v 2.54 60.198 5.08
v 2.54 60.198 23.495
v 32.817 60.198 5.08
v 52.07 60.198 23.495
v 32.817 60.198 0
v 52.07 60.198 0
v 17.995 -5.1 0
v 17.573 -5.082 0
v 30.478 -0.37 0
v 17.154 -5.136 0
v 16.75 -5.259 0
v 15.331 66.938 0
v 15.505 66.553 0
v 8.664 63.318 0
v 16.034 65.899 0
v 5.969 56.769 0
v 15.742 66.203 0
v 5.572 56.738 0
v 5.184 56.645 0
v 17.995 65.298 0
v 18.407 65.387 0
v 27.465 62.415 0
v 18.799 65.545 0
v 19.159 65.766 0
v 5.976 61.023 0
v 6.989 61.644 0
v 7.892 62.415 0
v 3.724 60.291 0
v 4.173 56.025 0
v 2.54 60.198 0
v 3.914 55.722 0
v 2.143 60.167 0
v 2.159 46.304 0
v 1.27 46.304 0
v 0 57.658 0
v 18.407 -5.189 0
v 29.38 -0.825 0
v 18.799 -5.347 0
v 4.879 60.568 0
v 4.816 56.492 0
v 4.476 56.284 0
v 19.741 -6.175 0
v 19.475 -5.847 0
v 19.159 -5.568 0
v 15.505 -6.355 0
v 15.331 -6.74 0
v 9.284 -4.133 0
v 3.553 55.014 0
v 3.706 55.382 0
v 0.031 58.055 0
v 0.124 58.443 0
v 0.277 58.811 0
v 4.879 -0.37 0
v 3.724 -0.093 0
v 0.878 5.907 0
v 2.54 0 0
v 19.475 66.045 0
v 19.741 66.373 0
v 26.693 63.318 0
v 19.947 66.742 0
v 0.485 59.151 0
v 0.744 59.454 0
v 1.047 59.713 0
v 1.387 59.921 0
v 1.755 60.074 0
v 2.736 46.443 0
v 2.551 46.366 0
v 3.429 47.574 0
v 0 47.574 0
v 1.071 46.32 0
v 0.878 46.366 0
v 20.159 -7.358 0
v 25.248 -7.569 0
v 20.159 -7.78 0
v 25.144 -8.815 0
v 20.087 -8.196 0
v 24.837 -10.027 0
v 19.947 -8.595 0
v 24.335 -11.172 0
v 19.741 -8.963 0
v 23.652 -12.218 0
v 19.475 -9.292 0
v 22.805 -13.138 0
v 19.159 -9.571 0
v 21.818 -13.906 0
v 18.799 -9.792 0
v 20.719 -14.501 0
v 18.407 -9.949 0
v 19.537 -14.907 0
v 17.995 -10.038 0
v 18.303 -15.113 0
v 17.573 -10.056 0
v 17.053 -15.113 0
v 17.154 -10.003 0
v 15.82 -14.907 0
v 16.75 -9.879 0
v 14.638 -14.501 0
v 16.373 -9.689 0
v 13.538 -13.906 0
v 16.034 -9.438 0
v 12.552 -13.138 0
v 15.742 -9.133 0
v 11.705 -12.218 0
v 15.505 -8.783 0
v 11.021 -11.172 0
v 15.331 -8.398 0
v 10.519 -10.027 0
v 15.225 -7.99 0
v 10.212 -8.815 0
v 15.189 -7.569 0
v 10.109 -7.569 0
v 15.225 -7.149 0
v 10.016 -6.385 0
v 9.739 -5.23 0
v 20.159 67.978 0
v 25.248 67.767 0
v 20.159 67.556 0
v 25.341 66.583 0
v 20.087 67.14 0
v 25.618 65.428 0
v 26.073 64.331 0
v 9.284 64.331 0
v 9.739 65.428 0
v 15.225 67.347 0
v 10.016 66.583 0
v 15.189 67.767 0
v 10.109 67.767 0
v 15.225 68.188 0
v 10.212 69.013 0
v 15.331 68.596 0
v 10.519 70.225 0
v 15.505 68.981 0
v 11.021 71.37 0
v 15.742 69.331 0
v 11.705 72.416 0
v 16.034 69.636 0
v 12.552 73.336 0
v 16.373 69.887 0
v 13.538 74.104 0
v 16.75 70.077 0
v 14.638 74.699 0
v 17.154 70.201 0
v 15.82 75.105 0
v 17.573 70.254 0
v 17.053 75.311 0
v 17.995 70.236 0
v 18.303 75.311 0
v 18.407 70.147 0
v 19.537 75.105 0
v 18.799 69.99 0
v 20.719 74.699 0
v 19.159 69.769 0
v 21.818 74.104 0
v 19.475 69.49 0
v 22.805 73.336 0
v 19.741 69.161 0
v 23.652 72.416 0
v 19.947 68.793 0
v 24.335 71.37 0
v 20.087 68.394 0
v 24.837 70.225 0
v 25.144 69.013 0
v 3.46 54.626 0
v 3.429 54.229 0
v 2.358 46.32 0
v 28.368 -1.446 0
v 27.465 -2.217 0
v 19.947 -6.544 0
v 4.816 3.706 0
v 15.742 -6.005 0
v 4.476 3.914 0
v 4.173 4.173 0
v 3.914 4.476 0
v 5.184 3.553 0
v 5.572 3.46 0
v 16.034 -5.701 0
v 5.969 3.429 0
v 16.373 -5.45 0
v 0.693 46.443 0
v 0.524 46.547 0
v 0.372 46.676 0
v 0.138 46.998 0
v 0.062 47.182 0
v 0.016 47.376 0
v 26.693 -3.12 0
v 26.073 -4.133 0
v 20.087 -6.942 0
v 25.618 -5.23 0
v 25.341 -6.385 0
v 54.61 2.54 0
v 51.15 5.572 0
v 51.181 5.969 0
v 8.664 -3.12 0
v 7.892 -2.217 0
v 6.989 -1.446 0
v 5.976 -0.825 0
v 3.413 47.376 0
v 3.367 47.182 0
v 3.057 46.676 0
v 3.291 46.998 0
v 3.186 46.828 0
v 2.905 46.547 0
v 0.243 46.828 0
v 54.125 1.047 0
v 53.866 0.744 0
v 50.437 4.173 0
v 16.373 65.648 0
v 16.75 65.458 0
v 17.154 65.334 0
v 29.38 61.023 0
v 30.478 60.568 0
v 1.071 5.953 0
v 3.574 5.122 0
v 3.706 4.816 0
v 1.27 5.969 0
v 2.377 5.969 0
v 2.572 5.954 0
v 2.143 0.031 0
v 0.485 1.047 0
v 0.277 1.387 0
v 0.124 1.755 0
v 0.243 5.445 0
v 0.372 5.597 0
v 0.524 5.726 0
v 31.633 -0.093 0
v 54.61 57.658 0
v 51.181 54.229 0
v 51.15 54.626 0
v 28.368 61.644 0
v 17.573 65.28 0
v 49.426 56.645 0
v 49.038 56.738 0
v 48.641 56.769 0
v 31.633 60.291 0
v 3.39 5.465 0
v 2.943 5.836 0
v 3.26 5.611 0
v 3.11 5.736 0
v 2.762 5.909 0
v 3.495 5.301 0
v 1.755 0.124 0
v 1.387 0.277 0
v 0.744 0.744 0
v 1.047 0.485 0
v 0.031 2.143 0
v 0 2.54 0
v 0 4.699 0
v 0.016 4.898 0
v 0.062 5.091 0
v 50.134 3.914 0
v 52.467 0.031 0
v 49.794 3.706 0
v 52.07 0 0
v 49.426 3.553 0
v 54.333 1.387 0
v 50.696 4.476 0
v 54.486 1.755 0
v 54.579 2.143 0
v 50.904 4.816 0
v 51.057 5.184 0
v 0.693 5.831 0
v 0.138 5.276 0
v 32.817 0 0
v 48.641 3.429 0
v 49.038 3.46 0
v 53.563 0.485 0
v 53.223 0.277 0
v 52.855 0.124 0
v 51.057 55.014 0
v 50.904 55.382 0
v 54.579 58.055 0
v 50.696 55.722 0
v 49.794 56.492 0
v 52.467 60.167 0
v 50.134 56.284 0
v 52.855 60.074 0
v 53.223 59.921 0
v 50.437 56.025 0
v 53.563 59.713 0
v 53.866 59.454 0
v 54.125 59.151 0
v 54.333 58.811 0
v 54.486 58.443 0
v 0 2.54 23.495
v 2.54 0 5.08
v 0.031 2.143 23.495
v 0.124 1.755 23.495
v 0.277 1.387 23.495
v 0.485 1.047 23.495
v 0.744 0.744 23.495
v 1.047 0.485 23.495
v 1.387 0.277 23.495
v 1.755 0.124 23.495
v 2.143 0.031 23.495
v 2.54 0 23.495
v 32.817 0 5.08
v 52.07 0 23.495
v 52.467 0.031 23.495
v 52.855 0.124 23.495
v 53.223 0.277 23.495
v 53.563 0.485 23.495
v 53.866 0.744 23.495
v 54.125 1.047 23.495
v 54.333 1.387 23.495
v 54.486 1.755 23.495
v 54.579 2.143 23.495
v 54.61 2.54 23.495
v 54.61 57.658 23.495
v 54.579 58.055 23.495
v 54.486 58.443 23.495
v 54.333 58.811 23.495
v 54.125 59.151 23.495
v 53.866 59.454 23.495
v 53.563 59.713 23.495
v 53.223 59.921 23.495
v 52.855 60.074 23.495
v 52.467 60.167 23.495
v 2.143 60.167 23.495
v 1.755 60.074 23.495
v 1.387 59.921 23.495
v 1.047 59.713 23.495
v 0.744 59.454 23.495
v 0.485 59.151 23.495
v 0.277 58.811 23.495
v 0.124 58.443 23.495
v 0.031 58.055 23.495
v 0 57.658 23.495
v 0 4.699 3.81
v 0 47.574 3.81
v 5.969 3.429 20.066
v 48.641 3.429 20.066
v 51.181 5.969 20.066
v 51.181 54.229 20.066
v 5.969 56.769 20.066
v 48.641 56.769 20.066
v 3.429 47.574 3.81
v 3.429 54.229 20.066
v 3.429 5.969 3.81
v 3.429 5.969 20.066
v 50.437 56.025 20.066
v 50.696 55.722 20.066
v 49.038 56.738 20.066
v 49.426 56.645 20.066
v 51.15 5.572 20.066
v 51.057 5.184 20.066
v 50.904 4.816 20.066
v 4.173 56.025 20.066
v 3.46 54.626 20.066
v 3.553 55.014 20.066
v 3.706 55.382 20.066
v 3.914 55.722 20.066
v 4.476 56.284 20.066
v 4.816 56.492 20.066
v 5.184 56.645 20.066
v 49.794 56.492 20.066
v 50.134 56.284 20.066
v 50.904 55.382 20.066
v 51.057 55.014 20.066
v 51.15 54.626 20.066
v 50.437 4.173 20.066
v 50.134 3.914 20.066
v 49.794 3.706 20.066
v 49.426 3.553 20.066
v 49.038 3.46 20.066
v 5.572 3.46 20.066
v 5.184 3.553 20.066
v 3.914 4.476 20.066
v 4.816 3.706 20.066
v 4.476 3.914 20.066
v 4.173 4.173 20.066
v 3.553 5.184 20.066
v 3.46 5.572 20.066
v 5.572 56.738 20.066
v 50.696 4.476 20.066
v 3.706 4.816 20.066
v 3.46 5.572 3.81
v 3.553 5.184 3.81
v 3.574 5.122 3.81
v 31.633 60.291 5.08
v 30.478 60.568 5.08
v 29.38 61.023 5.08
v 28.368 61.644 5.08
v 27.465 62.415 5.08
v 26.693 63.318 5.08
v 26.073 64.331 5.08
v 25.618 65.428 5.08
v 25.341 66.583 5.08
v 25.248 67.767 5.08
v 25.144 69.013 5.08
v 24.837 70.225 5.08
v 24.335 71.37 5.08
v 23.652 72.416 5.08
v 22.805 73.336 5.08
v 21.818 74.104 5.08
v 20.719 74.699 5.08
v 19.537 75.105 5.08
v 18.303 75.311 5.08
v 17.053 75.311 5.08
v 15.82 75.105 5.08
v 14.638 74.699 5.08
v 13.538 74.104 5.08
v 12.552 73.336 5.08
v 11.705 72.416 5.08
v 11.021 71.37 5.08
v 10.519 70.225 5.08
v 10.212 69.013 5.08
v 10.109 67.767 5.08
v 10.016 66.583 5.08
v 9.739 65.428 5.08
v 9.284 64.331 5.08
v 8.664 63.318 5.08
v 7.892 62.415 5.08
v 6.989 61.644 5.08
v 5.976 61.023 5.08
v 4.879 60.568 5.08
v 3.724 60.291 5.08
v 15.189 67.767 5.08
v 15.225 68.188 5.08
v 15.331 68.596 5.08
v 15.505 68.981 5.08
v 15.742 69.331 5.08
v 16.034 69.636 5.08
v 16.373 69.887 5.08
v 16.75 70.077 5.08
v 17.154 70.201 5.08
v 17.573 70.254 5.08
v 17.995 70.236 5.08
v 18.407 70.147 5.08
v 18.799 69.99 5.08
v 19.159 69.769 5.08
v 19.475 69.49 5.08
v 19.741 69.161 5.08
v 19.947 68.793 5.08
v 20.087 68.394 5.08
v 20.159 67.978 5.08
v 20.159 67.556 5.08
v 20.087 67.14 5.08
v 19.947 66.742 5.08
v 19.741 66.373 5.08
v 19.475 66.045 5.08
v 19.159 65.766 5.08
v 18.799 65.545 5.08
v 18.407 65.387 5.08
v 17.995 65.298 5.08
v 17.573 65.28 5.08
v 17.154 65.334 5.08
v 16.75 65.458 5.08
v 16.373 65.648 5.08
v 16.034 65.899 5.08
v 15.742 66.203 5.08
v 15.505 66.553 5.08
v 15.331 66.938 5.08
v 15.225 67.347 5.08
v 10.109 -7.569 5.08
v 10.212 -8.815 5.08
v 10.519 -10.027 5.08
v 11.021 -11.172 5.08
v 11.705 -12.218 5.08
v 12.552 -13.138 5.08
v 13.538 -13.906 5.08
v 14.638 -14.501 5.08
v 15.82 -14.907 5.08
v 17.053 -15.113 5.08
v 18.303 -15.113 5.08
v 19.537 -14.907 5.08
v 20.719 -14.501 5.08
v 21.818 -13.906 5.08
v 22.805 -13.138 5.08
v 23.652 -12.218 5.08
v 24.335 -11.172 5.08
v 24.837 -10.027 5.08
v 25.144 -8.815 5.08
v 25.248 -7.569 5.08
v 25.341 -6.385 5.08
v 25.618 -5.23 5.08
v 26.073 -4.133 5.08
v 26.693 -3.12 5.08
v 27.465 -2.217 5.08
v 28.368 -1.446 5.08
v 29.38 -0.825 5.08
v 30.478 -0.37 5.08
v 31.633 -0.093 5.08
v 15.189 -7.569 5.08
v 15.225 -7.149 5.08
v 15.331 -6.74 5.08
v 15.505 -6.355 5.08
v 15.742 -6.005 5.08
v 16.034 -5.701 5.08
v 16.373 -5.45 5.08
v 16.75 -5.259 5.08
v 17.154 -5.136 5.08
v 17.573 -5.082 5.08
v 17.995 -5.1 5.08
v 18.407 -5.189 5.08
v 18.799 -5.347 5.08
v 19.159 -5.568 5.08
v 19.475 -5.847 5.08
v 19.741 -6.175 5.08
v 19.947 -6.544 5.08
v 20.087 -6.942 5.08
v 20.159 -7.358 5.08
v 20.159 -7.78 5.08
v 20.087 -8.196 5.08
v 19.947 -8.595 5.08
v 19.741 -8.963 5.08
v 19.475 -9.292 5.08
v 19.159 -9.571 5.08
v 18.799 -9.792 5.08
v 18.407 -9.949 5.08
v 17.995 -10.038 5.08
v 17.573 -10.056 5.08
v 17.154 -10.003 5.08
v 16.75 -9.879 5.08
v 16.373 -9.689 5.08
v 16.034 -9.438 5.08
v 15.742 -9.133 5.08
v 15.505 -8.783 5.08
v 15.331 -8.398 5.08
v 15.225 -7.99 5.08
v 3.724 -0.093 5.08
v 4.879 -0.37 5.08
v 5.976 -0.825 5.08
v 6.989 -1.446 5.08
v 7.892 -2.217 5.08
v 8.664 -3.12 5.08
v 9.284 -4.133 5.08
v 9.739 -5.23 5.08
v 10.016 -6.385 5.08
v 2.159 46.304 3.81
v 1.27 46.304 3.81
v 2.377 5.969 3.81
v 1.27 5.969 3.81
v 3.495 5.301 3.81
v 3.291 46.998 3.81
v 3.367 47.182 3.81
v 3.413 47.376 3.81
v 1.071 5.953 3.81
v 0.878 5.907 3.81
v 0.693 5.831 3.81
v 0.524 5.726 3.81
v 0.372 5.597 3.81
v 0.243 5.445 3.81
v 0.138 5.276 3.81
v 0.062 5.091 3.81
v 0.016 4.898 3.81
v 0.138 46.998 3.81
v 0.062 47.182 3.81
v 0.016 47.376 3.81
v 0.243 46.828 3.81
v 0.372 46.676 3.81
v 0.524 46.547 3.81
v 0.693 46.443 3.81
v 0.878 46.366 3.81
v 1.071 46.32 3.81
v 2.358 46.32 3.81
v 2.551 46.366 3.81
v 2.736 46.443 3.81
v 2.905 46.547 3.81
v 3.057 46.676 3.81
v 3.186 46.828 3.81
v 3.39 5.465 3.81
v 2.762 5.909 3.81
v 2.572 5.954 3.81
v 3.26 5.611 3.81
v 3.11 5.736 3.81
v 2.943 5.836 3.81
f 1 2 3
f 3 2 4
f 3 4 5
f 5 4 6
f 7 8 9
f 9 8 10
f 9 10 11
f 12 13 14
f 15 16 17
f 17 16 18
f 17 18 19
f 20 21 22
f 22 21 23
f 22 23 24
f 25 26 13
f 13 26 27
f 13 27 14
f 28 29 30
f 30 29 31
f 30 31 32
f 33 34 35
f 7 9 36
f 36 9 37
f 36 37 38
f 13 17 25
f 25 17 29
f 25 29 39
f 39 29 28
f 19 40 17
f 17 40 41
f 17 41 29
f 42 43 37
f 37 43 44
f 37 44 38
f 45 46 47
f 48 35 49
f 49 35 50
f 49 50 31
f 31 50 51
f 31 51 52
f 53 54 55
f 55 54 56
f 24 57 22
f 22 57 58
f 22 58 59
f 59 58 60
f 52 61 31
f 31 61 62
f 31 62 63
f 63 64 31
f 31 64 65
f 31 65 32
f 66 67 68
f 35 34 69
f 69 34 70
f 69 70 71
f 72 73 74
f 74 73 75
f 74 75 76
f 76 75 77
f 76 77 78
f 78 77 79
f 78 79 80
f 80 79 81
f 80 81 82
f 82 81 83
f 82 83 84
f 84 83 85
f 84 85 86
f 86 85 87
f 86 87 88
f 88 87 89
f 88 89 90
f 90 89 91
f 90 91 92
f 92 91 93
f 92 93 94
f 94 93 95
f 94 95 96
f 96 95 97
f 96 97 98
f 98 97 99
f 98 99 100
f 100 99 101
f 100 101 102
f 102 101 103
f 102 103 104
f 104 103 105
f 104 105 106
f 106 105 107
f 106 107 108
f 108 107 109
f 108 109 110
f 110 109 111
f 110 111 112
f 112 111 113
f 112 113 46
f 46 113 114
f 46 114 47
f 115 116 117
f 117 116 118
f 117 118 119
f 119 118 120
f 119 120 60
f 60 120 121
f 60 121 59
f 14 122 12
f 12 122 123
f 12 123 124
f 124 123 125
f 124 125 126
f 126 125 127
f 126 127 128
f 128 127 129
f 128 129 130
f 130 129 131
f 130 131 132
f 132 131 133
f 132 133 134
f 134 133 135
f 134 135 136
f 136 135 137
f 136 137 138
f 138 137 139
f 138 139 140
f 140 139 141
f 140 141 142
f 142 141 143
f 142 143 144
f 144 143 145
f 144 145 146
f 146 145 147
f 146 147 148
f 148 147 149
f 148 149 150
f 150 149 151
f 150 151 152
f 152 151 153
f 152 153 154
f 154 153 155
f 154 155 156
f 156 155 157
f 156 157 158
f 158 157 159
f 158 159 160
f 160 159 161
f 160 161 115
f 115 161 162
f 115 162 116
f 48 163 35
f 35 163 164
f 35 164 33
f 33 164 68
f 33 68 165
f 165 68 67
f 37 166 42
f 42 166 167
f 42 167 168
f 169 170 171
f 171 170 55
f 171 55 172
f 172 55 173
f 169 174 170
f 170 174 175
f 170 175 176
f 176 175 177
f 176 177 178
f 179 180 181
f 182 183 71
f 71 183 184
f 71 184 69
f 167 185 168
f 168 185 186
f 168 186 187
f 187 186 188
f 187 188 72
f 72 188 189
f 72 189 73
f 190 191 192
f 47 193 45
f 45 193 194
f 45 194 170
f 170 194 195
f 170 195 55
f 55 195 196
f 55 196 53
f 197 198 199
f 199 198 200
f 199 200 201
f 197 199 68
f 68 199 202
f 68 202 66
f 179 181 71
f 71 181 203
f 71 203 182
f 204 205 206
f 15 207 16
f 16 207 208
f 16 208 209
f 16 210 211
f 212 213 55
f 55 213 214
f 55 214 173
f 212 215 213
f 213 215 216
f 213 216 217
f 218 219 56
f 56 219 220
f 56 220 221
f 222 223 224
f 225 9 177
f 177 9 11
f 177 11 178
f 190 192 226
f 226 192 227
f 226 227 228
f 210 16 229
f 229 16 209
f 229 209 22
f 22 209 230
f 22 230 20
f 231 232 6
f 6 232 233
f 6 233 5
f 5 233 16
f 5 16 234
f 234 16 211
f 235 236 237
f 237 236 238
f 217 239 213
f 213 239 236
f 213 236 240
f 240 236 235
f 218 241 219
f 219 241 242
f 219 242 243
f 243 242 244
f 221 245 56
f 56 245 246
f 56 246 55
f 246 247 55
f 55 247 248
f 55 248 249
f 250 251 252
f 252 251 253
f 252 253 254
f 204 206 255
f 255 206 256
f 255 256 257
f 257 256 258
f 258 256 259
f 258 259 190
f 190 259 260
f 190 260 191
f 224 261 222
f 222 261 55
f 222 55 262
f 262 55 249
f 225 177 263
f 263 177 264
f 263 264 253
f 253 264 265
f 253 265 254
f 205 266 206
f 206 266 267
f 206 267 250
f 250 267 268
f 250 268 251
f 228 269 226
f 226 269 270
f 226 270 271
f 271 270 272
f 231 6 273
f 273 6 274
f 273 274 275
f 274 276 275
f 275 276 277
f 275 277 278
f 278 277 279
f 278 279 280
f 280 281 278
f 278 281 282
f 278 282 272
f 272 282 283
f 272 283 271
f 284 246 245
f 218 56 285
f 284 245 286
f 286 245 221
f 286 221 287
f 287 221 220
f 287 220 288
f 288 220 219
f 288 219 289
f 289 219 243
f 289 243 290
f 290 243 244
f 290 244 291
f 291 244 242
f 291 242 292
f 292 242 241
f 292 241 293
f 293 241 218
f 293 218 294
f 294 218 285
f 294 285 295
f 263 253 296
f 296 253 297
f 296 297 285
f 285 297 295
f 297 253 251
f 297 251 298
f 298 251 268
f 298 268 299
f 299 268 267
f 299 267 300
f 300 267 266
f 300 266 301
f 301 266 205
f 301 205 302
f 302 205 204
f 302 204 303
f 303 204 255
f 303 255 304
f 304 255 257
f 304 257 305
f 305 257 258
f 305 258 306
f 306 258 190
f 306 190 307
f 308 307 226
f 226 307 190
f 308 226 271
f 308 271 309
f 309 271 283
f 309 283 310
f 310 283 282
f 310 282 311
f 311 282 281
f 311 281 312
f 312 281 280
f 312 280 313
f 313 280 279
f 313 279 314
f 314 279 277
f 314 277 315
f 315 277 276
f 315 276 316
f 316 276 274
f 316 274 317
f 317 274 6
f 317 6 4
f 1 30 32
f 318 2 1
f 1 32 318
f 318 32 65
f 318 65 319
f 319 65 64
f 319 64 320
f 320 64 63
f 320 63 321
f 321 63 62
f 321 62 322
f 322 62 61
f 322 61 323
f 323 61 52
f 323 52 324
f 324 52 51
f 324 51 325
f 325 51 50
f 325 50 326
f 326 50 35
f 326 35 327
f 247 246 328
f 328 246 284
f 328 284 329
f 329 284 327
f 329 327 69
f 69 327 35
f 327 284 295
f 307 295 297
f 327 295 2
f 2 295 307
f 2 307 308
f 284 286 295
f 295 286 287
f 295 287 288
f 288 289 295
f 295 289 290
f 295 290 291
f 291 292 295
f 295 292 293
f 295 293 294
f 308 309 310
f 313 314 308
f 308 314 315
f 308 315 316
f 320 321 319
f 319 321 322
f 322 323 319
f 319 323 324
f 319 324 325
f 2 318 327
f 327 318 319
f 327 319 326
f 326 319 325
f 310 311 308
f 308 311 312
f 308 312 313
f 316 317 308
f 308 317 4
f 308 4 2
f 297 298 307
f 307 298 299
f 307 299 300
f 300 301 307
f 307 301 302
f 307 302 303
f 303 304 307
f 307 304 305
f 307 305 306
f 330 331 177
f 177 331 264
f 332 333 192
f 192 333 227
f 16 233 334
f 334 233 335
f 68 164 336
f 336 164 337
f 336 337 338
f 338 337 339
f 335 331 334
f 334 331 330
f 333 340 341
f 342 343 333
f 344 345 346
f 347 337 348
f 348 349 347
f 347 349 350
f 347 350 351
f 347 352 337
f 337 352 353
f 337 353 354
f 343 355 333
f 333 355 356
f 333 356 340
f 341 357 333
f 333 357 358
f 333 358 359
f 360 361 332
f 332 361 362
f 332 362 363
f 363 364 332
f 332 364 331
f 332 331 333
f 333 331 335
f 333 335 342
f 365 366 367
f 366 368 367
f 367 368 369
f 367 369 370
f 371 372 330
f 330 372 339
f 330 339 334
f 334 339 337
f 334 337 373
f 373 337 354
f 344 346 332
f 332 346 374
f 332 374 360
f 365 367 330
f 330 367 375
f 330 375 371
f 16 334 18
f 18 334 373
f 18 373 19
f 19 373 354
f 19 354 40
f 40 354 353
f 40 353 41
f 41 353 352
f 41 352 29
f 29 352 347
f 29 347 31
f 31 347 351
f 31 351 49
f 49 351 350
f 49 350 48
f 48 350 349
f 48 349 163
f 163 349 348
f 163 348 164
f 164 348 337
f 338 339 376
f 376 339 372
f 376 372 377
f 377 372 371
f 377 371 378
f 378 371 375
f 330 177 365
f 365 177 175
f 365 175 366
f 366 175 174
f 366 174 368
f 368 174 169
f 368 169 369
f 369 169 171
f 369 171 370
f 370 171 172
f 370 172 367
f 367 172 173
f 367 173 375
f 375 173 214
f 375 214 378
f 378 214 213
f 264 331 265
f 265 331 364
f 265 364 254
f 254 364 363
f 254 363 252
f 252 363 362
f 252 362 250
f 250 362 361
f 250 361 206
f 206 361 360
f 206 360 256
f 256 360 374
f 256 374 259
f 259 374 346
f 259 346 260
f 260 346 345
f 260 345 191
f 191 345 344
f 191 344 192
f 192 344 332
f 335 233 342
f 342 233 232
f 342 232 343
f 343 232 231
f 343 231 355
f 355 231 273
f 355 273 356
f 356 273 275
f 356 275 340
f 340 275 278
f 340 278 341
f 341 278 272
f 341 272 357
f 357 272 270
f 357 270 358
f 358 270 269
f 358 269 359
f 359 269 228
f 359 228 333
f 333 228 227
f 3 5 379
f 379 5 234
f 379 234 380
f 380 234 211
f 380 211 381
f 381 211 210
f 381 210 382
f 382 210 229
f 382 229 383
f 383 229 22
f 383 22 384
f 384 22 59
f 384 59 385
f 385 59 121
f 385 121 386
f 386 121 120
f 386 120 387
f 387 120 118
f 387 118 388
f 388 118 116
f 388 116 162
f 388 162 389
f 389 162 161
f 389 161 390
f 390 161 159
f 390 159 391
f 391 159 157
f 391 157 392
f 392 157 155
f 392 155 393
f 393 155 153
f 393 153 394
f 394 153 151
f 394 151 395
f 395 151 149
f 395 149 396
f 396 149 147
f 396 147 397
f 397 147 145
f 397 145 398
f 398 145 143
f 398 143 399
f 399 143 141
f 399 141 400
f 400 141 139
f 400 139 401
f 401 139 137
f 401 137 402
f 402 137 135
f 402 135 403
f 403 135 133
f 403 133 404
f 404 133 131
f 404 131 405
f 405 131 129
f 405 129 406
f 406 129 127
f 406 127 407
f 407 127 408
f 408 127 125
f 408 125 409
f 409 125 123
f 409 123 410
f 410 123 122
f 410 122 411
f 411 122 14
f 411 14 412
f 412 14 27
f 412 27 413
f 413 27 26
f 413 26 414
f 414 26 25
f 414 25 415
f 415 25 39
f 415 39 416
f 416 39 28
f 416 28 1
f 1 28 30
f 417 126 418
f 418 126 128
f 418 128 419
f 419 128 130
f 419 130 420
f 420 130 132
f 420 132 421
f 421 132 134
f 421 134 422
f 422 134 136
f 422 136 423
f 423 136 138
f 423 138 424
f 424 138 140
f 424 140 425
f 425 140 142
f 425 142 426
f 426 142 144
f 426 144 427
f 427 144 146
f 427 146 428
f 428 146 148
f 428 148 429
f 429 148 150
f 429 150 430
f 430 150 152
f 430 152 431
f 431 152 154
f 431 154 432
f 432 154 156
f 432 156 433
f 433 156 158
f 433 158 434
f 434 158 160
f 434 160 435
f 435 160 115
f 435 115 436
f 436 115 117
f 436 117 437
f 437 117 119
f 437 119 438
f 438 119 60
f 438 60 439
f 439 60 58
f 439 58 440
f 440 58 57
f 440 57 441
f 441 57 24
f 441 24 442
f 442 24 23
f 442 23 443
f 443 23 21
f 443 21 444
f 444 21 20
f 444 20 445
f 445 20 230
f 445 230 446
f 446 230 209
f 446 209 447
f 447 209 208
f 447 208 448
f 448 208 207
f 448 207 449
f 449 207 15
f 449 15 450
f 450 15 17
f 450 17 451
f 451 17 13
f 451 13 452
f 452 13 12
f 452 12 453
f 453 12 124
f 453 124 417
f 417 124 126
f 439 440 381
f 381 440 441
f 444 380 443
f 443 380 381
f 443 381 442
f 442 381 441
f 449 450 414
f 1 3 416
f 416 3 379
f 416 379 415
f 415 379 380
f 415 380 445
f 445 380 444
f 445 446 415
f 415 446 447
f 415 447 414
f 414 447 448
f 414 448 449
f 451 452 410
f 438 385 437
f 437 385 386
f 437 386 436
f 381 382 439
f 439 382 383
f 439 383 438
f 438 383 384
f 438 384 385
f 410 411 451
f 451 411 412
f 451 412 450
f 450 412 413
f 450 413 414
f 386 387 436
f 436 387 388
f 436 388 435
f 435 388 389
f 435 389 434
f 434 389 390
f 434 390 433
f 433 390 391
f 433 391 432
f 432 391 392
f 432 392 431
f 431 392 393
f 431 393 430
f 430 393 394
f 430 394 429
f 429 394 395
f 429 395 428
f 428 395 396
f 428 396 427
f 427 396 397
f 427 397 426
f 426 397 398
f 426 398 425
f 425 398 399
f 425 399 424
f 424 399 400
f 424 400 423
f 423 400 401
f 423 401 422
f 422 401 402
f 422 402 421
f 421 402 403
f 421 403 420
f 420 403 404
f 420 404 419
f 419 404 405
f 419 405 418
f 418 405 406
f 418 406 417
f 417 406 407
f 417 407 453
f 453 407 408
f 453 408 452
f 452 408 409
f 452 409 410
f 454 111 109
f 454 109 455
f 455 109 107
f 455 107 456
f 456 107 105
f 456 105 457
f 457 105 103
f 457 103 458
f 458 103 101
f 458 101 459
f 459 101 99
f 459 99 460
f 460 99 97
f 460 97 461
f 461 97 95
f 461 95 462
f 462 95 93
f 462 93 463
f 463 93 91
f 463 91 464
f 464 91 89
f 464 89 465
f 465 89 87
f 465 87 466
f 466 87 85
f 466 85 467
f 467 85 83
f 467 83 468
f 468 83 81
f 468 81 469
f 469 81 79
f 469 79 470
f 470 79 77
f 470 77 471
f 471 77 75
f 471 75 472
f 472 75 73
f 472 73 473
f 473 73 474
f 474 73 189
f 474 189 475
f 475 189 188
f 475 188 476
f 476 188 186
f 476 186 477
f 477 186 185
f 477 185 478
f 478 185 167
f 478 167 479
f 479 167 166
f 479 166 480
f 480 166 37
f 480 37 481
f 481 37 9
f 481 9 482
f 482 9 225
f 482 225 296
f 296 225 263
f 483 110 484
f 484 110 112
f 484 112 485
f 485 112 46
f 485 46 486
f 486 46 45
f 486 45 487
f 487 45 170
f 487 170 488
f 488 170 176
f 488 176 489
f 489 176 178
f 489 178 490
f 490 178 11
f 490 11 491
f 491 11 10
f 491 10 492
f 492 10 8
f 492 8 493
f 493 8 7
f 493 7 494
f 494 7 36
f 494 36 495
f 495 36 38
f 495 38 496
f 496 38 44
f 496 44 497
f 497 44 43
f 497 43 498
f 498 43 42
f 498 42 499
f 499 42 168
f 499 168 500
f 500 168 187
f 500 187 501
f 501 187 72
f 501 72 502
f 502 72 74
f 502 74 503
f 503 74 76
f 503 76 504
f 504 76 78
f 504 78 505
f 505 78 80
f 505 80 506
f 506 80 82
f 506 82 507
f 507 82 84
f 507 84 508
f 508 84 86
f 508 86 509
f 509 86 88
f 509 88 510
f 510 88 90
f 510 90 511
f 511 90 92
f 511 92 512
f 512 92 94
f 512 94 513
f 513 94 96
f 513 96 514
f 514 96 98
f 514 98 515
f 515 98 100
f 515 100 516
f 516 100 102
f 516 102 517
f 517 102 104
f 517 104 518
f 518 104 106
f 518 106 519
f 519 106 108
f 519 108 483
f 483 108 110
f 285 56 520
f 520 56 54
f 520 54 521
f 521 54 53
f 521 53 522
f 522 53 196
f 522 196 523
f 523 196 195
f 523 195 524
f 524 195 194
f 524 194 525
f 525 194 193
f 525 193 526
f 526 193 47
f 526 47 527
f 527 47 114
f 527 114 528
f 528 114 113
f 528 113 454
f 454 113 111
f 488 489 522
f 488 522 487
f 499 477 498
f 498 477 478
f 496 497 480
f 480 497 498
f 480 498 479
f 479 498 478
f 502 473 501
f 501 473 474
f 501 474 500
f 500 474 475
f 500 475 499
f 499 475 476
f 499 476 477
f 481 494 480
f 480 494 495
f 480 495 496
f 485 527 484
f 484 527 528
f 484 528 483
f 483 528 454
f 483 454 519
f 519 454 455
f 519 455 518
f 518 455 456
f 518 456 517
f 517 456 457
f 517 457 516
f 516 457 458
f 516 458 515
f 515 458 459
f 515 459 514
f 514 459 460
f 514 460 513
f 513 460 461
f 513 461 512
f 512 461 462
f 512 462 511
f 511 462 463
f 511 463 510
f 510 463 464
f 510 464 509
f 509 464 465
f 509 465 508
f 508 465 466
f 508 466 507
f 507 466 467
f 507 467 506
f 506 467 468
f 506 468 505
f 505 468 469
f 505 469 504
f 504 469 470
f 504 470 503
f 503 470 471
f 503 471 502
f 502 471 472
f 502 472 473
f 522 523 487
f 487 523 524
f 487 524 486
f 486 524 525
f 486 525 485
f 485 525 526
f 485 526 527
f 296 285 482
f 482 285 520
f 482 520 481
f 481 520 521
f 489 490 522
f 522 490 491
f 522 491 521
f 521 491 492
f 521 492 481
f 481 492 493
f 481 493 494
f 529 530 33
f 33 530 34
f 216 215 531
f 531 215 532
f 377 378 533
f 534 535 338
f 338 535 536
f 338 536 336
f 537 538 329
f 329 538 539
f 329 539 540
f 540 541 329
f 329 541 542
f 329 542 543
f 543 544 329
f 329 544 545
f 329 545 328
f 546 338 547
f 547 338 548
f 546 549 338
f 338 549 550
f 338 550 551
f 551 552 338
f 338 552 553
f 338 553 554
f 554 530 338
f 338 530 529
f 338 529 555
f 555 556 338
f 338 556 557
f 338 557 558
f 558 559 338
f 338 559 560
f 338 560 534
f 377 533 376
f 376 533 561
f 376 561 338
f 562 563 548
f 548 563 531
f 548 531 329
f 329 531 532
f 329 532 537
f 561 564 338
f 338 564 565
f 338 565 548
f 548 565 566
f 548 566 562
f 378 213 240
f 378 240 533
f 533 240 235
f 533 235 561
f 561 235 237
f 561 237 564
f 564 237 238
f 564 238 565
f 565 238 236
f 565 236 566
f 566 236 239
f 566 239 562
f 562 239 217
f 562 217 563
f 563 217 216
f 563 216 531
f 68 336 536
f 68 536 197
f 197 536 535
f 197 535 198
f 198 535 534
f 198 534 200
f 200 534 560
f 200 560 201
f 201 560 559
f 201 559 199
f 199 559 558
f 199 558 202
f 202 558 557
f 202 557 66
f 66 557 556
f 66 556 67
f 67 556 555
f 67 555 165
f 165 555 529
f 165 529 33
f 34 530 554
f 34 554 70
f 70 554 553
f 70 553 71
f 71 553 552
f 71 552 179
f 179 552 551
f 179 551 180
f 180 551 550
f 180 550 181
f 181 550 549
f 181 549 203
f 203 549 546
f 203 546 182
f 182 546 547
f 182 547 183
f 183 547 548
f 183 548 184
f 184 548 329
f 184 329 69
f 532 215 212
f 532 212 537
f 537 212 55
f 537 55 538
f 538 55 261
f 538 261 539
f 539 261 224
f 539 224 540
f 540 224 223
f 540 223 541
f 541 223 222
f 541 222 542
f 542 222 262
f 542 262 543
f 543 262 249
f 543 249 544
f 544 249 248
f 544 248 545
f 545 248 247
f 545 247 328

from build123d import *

# Parameters (mm, degrees)
BOSS_EXTRUDE1_DEPTH = 23.495
SHELL1_T            = -3.429
FILLET1_R           = 2.54
SKETCH2_R           = 7.5692
SKETCH2_R_2         = 2.4892
BOSS_EXTRUDE2_DEPTH = 5.08
CUT_EXTRUDE1_REACH  = 56.61
SKETCH3_W           = 3.81
SKETCH3_H           = 40.3352
FILLET2_R           = 1.27


with BuildPart() as part:
    # Sketch1 → Boss-Extrude1 (new body)
    with BuildSketch(Plane.XY):
        with BuildLine():
            Line((2.54, 0), (52.07, 0))
            ThreePointArc((52.07, 0), (53.866051224, 0.743948776), (54.61, 2.54))
            Line((54.61, 2.54), (54.61, 57.658))
            ThreePointArc((54.61, 57.658), (53.866051224, 59.454051224), (52.07, 60.198))
            Line((52.07, 60.198), (2.54, 60.198))
            ThreePointArc((2.54, 60.198), (0.743948776, 59.454051224), (0, 57.658))
            Line((0, 57.658), (0, 2.54))
            ThreePointArc((0, 2.54), (0.743948776, 0.743948776), (2.54, 0))
        make_face()
    extrude(amount=BOSS_EXTRUDE1_DEPTH)

    # Shell1
    shell1_openings = [part.faces().sort_by_distance(p)[0] for p in [
        (27.305, 30.099, 0),
    ]]
    offset(amount=SHELL1_T, openings=shell1_openings, kind=Kind.INTERSECTION)

    # Fillet1
    fillet1_edges = [part.edges().sort_by_distance(p)[0] for p in [
        (3.429, 3.429, 10.033),
        (51.181, 3.429, 10.033),
        (51.181, 56.769, 10.033),
        (3.429, 56.769, 10.033),
    ]]
    fillet(fillet1_edges, radius=FILLET1_R)

    # Sketch2 → Boss-Extrude2 (add)
    with BuildSketch(Plane(origin=(0, 0, 0), x_dir=(-1, 0, 0), z_dir=(0, 0, -1))):
        with BuildLine():
            ThreePointArc((-17.6784, 60.198), (-23.030632648, 62.414967352), (-25.2476, 67.7672))
            ThreePointArc((-25.2476, 67.7672), (-27.464567352, 62.414967352), (-32.8168, 60.198))
            Line((-32.8168, 60.198), (-17.6784, 60.198))
        make_face()
        with Locations((-17.6784, 67.7672)):
            Circle(SKETCH2_R)
        with Locations((-17.6784, 67.7672)):
            Circle(SKETCH2_R_2, mode=Mode.SUBTRACT)
        with BuildLine():
            ThreePointArc((-2.54, 60.198), (-7.892232648, 62.414967352), (-10.1092, 67.7672))
            ThreePointArc((-10.1092, 67.7672), (-12.326167352, 62.414967352), (-17.6784, 60.198))
            Line((-17.6784, 60.198), (-2.54, 60.198))
        make_face()
        with Locations((-17.6784, -7.5692)):
            Circle(SKETCH2_R)
        with Locations((-17.6784, -7.5692)):
            Circle(SKETCH2_R_2, mode=Mode.SUBTRACT)
        with BuildLine():
            ThreePointArc((-32.8168, 0), (-27.464567352, -2.216967352), (-25.2476, -7.5692))
            ThreePointArc((-25.2476, -7.5692), (-23.03063266, -2.216967364), (-17.678400033, 0))
            Line((-17.678400033, 0), (-32.8168, 0))
        make_face()
        with BuildLine():
            ThreePointArc((-17.678400033, 0), (-12.326167364, -2.21696734), (-10.1092, -7.5692))
            ThreePointArc((-10.1092, -7.5692), (-7.892232648, -2.216967352), (-2.54, 0))
            Line((-2.54, 0), (-17.678400033, 0))
        make_face()
    extrude(amount=-BOSS_EXTRUDE2_DEPTH)

    # Sketch3 → Cut-Extrude1 (cut, up to next)
    with BuildSketch(Plane.ZY, mode=Mode.PRIVATE) as cut_extrude1_sk1:
        with Locations((1.905, 26.1366)):
            Rectangle(SKETCH3_W, SKETCH3_H)
    cut_extrude1_tool1 = extrude(cut_extrude1_sk1.sketch, amount=-CUT_EXTRUDE1_REACH, mode=Mode.PRIVATE) & part.part
    add(cut_extrude1_tool1.solids().sort_by_distance((0, 26.1366, 1.905))[0], mode=Mode.SUBTRACT)

    # Fillet2
    fillet2_edges = [part.edges().sort_by_distance(p)[0] for p in [
        (3.429, 46.3042, 1.905),
        (3.429, 5.969, 1.905),
        (0, 5.969, 1.905),
        (0, 46.3042, 1.905),
    ]]
    fillet(fillet2_edges, radius=FILLET2_R)


solid = part.part
